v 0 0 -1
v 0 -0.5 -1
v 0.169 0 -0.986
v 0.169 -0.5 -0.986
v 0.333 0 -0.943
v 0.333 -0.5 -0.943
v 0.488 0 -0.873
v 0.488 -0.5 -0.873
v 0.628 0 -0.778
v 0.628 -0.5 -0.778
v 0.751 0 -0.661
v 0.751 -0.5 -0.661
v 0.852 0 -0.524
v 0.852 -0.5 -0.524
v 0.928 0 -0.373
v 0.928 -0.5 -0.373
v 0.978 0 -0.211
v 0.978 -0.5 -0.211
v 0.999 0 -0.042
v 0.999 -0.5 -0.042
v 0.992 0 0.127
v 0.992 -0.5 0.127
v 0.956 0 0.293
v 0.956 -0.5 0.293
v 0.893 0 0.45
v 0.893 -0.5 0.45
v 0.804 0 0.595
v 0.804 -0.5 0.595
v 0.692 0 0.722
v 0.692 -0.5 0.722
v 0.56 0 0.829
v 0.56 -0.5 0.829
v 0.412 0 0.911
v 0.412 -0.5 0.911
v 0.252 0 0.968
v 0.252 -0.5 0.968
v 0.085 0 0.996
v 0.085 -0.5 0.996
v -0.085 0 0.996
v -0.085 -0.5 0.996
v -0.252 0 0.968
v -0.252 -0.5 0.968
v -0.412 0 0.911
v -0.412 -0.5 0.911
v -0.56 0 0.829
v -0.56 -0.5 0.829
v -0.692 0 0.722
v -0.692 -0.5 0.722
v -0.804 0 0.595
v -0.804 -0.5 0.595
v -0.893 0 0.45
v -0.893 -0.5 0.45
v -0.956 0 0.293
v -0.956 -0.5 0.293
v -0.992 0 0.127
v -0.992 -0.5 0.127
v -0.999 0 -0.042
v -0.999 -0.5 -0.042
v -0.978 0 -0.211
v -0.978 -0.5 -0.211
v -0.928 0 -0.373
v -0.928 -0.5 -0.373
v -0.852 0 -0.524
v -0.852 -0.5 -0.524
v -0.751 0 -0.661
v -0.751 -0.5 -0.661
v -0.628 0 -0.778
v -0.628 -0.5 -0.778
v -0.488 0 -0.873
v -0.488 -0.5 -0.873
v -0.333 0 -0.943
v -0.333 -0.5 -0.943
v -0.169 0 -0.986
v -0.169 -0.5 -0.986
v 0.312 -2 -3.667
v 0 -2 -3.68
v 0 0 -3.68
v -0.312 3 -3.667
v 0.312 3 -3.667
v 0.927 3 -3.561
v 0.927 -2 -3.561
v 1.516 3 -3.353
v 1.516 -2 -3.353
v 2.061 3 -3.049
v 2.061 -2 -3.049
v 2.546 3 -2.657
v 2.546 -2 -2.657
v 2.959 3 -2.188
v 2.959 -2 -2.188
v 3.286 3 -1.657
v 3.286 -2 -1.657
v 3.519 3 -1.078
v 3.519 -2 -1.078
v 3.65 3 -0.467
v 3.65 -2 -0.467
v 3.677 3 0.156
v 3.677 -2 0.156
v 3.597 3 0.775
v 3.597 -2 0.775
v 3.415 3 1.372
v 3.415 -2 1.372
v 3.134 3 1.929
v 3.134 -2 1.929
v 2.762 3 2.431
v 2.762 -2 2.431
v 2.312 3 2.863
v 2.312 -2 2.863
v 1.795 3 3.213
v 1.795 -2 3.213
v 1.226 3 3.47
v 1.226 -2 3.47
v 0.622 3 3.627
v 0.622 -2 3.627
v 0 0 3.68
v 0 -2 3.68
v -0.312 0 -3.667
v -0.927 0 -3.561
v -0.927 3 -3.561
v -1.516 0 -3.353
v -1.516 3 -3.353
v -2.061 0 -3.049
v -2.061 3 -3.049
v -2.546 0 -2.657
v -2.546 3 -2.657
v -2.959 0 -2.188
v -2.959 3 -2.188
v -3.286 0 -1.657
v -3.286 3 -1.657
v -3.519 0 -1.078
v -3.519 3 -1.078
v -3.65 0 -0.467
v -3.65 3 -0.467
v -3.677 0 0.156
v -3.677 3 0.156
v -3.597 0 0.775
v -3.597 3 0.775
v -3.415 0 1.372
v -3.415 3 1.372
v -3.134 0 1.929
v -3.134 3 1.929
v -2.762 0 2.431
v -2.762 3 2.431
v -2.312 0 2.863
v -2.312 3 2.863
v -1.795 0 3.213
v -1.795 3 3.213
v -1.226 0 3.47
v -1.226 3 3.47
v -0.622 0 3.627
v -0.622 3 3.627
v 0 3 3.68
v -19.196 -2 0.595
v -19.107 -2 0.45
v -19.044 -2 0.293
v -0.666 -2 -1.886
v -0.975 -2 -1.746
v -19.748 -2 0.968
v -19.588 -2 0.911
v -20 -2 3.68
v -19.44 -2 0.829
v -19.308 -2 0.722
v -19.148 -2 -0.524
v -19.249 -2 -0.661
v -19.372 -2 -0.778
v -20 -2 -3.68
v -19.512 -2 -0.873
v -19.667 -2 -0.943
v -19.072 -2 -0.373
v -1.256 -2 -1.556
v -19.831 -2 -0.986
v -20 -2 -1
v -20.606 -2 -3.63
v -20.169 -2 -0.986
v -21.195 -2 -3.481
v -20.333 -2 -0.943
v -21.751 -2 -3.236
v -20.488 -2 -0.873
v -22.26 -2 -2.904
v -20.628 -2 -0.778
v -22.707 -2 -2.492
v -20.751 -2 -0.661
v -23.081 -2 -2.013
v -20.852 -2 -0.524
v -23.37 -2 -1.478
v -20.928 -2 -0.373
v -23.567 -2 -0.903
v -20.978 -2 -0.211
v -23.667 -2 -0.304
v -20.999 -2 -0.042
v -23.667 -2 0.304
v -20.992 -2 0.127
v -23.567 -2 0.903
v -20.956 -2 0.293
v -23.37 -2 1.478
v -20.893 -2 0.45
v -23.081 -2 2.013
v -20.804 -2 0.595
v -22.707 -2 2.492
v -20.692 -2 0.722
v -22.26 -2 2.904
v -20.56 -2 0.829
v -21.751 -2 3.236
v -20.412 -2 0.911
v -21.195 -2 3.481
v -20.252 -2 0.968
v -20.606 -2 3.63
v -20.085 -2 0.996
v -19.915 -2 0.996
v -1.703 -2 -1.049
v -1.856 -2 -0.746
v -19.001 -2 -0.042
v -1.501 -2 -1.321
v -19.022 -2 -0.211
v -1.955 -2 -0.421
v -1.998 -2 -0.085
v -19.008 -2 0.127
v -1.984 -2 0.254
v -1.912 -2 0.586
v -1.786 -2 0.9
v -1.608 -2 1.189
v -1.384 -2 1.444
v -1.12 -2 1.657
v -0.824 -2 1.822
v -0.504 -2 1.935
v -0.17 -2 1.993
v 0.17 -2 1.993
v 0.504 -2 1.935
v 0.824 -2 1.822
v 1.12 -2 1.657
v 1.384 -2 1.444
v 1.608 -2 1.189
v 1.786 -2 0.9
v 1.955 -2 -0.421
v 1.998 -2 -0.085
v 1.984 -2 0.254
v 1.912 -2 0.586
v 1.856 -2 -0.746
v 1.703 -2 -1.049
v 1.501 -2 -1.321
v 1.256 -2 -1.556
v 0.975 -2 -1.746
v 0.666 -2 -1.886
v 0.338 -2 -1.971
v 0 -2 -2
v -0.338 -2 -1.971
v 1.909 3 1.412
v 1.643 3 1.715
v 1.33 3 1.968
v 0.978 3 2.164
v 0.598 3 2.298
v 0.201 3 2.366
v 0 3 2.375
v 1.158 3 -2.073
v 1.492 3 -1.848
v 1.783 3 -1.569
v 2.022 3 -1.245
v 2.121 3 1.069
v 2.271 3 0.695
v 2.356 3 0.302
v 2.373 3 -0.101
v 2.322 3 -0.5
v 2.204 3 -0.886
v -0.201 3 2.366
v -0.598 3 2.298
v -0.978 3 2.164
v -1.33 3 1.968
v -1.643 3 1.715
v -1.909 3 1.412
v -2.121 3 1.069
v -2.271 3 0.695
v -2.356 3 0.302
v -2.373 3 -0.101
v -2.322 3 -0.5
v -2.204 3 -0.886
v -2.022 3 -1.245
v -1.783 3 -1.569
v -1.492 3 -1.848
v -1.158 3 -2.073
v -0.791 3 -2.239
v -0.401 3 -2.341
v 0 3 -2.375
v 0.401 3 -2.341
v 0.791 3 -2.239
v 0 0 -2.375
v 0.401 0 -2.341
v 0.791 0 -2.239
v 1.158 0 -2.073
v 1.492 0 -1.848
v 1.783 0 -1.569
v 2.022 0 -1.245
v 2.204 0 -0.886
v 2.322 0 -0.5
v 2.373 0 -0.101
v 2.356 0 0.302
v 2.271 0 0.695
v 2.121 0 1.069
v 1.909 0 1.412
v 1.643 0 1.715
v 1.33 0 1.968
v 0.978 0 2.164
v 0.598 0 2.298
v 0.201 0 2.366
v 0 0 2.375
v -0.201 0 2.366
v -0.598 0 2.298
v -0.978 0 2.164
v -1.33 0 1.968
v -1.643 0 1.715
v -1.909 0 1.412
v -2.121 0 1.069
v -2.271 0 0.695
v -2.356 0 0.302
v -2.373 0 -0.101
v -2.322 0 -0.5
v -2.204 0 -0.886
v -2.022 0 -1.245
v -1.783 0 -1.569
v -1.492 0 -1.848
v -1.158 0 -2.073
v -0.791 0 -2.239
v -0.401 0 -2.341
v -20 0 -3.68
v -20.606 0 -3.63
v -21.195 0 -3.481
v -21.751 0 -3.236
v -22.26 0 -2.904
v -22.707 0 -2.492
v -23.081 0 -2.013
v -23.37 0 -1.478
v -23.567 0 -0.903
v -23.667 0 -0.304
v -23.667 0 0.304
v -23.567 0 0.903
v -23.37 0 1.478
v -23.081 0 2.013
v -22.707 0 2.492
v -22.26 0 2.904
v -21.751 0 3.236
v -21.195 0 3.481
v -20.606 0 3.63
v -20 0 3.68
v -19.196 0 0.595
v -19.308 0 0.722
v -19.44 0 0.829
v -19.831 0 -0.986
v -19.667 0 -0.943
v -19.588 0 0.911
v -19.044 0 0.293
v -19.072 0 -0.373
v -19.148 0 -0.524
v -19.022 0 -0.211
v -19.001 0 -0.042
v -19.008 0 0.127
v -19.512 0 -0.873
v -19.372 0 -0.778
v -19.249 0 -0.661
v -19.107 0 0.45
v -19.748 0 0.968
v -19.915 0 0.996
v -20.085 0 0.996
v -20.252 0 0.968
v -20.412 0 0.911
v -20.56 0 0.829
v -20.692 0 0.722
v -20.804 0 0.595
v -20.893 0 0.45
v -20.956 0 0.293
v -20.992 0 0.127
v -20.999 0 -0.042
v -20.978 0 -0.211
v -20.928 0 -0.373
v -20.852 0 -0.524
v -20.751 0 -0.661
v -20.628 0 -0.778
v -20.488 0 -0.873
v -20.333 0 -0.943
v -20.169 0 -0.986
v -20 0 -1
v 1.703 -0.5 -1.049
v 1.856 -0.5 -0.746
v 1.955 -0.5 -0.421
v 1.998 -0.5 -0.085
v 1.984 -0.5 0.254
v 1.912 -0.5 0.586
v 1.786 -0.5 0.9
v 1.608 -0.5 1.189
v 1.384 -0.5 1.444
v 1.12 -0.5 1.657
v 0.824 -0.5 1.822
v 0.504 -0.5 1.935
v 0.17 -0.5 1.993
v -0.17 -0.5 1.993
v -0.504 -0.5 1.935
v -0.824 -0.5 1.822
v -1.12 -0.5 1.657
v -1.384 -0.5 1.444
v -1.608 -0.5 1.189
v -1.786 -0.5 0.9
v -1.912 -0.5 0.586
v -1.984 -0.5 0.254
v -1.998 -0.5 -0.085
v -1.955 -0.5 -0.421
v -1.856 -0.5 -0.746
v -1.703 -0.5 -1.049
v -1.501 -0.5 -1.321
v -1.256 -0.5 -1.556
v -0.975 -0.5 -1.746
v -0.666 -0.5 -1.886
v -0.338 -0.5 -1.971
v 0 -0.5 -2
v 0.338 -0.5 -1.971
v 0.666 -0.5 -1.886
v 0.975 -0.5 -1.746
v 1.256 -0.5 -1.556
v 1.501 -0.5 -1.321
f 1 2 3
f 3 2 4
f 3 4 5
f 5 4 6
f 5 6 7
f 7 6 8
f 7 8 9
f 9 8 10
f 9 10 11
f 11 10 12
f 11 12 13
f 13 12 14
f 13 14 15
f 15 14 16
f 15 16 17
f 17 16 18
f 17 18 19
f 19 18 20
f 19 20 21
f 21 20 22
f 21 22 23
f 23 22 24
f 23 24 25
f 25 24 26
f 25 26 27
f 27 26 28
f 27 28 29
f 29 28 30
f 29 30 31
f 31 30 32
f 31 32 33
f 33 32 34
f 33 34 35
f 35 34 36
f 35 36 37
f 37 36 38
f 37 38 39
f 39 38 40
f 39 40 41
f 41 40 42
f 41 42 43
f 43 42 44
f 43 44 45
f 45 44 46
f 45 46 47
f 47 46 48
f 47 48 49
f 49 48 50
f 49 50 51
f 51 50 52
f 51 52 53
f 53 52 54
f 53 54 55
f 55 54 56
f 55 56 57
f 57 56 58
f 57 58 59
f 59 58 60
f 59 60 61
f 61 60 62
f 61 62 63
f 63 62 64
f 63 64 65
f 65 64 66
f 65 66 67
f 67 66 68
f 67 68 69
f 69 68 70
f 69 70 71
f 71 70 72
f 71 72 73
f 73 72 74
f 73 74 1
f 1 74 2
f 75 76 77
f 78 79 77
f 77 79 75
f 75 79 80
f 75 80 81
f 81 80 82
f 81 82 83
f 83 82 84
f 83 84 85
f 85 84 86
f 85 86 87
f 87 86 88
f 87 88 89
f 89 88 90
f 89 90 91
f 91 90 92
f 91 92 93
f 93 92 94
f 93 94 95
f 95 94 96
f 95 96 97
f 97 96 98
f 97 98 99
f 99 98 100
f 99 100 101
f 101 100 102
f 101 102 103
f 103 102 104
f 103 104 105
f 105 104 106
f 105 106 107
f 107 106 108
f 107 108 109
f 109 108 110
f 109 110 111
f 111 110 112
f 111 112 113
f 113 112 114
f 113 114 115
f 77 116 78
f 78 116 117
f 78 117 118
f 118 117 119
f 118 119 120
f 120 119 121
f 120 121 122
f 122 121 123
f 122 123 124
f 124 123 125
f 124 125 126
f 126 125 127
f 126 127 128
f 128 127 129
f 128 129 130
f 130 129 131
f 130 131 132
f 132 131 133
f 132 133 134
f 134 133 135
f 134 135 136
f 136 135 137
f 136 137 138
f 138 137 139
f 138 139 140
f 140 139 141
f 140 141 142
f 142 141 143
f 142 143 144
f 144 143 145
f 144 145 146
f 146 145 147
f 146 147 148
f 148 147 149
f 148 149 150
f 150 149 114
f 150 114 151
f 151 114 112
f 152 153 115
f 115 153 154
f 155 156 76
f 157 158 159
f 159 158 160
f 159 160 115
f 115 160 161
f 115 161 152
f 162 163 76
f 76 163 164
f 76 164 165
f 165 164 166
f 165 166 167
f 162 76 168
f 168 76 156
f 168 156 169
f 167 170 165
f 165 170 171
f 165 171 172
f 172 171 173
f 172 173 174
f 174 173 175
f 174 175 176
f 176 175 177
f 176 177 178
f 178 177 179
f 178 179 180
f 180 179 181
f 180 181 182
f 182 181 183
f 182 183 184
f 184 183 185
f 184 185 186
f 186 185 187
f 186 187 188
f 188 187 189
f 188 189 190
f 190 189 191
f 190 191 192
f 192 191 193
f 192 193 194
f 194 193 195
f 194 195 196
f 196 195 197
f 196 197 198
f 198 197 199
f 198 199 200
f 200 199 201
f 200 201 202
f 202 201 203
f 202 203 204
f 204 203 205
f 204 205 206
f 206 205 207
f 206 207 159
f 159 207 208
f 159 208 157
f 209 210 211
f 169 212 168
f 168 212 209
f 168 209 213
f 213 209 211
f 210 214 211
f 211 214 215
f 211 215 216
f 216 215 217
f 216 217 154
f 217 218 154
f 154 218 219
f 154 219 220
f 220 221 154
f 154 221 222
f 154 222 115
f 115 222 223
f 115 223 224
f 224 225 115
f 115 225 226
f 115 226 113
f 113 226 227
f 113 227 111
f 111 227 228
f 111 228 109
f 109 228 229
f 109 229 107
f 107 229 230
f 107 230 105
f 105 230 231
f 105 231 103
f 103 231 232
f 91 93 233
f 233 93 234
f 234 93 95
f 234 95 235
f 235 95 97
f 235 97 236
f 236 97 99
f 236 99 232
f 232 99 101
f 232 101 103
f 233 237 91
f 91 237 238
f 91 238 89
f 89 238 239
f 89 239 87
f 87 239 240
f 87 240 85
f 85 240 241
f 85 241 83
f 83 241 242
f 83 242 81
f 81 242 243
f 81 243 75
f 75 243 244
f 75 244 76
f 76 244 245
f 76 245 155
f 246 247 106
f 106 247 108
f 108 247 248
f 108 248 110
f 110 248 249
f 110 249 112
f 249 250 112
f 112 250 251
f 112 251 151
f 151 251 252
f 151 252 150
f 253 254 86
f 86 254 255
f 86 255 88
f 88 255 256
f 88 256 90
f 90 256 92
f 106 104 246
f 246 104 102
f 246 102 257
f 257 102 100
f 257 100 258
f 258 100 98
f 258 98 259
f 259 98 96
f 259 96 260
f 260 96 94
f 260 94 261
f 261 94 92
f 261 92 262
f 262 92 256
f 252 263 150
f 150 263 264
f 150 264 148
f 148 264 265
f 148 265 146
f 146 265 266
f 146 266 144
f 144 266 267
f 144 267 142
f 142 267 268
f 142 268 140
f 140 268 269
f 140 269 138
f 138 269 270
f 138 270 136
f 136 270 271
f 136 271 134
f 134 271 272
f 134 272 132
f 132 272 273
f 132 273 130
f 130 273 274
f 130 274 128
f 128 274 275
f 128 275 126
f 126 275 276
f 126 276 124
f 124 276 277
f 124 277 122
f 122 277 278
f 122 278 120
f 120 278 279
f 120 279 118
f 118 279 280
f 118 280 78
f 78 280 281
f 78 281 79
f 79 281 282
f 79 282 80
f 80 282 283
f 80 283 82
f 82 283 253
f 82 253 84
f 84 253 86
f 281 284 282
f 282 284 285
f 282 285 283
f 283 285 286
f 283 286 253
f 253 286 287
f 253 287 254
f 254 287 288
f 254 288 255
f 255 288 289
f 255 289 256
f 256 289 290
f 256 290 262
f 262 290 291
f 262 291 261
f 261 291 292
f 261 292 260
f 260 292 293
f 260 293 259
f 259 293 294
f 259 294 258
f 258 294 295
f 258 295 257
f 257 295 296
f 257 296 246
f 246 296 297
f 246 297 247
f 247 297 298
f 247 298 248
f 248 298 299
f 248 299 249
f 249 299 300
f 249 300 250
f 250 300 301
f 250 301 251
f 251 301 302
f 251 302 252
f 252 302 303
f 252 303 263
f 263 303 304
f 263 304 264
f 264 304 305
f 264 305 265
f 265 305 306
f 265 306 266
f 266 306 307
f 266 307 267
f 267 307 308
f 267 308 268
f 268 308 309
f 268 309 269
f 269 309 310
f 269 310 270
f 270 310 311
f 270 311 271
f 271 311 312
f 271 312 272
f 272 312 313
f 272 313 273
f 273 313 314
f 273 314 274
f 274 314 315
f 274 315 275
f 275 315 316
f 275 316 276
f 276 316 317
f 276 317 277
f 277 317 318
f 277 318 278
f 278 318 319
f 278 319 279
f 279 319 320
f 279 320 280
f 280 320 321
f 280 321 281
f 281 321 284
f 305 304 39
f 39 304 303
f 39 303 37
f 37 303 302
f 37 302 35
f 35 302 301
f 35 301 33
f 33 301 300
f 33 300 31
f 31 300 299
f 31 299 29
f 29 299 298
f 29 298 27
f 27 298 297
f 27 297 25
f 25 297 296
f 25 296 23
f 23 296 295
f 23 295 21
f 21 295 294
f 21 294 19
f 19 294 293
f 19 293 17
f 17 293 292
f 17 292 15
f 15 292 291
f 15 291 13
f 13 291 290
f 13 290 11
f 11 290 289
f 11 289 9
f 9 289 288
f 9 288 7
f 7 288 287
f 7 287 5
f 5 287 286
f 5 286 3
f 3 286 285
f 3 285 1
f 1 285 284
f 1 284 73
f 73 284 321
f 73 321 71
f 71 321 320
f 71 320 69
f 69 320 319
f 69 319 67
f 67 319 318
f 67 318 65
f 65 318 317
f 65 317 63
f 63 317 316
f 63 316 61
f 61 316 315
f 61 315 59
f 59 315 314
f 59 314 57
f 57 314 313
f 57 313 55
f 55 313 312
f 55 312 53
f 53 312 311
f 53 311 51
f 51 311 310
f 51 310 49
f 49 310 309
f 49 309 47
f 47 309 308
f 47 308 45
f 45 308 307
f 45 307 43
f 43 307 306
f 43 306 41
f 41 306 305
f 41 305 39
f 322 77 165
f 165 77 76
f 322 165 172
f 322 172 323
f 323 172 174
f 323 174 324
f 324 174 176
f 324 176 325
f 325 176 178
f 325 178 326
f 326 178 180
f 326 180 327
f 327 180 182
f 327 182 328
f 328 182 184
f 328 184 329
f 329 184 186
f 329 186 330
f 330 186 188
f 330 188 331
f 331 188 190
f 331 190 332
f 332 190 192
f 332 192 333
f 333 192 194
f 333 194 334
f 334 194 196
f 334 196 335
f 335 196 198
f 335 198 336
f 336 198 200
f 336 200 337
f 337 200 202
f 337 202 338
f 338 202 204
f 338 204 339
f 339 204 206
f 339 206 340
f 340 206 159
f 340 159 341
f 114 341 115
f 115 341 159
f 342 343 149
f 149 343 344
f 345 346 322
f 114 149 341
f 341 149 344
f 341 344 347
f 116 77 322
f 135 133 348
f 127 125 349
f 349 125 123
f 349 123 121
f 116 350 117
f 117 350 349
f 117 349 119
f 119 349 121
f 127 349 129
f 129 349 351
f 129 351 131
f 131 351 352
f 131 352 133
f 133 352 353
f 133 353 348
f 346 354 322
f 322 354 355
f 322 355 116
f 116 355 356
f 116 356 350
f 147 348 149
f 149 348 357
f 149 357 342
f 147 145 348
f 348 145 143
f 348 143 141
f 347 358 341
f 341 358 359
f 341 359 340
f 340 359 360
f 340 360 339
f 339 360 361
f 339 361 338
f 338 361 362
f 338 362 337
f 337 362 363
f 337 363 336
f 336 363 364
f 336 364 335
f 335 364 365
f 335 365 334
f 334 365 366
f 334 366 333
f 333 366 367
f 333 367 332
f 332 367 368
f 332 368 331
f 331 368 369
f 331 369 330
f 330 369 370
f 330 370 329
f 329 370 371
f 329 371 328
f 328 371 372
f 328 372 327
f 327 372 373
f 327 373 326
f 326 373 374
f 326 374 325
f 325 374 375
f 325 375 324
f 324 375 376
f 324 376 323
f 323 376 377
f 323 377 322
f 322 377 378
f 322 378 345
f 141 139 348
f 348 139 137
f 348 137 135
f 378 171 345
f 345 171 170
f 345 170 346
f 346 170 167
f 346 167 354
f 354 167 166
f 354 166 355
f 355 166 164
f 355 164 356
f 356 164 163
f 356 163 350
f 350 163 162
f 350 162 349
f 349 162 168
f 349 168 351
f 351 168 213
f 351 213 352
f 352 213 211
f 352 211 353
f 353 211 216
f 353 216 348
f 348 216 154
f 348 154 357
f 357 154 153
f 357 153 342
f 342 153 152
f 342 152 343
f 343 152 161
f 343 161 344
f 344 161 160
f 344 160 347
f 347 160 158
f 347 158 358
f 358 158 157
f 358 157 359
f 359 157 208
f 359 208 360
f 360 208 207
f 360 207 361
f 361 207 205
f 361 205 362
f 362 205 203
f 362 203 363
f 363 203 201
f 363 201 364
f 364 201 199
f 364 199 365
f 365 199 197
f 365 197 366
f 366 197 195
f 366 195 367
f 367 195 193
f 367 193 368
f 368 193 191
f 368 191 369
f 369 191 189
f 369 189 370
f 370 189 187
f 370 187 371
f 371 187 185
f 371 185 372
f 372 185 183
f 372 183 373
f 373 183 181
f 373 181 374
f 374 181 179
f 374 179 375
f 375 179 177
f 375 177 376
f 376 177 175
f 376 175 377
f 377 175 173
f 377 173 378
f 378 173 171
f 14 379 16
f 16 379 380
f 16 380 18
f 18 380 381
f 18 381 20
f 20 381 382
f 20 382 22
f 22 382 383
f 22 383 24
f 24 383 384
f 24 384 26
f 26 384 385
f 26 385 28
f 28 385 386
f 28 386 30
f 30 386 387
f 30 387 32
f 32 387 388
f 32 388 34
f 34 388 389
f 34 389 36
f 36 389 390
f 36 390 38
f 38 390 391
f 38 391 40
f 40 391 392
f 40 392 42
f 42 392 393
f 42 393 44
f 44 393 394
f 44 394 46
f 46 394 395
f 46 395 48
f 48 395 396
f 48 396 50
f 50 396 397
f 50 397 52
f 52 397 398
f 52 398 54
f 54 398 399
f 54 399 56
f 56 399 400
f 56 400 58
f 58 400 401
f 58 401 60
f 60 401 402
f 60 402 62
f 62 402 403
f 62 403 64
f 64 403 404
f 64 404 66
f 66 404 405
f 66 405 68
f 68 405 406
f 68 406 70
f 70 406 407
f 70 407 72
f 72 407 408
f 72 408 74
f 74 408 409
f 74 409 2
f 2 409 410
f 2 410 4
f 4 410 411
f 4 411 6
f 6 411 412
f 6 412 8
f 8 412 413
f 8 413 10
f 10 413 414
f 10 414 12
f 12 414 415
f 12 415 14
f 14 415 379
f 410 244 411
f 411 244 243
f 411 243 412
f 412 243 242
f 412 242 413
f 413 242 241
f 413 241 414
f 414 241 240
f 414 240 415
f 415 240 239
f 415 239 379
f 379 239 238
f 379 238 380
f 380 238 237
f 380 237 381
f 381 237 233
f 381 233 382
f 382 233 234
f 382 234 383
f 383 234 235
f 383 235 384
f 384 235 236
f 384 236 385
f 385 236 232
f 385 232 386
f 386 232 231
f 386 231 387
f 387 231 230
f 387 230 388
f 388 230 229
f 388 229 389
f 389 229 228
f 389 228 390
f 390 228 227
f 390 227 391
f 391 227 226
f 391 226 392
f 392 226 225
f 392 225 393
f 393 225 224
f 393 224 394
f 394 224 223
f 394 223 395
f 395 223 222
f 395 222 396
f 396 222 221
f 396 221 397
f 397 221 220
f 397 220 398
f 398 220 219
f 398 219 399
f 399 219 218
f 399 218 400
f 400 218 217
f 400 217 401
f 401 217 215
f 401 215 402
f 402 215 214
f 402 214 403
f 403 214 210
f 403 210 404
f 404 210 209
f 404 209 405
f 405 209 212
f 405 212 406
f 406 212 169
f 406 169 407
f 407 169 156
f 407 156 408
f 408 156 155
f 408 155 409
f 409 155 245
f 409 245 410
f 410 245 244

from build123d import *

# Parameters (mm, degrees)
SKETCH1_R           = 3.68
BOSS_EXTRUDE1_DEPTH = 2
BOSS_EXTRUDE2_START = 3
SKETCH2_R           = 3.68
SKETCH2_R_2         = 2.375
BOSS_EXTRUDE2_DEPTH = 3
BOSS_EXTRUDE3_START = -2
BOSS_EXTRUDE3_DEPTH = 2
SKETCH7_R           = 1
CUT_EXTRUDE4_DEPTH  = 2
SKETCH8_R           = 2
CUT_EXTRUDE6_DEPTH  = 1.5


with BuildPart() as part:
    # Sketch1 → Boss-Extrude1 (new body)
    with BuildSketch(Plane(origin=(0, 0, 0), x_dir=(1, 0, 0), z_dir=(0, 1, 0))):
        with Locations(Location((0, 0, 0), (0, 0, 270))):
            Circle(SKETCH1_R)
    extrude(amount=-BOSS_EXTRUDE1_DEPTH)

    # Sketch2 → Boss-Extrude2 (add)
    with BuildSketch(Plane(origin=(0, 0, 0), x_dir=(1, 0, 0), z_dir=(0, 1, 0)).offset(BOSS_EXTRUDE2_START)):
        with Locations(Location((0, 0, 0), (0, 0, 270))):
            Circle(SKETCH2_R)
        with Locations(Location((0, 0, 0), (0, 0, 270))):
            Circle(SKETCH2_R_2, mode=Mode.SUBTRACT)
    extrude(amount=-BOSS_EXTRUDE2_DEPTH)

    # Sketch6 → Boss-Extrude3 (add)
    with BuildSketch(Plane.XZ.offset(2).offset(BOSS_EXTRUDE3_START)):
        with BuildLine():
            Line((0, -3.68), (-20, -3.68))
            ThreePointArc((-20, -3.68), (-23.68, 0), (-20, 3.68))
            Line((-20, 3.68), (0, 3.68))
            ThreePointArc((0, 3.68), (3.68, 0), (0, -3.68))
        make_face()
    extrude(amount=BOSS_EXTRUDE3_DEPTH)

    # Sketch7 → Cut-Extrude4 (cut)
    with BuildSketch(Plane.XZ.offset(2)):
        with Locations(Location((0, 0, 0), (0, 0, 270))):
            Circle(SKETCH7_R)
        with Locations(Location((-20, 0, 0), (0, 0, 270))):
            Circle(SKETCH7_R)
    extrude(amount=-CUT_EXTRUDE4_DEPTH, mode=Mode.SUBTRACT)

    # Sketch8 → Cut-Extrude6 (cut)
    with BuildSketch(Plane.XZ.offset(2)):
        with Locations(Location((0, 0, 0), (0, 0, 270))):
            Circle(SKETCH8_R)
    extrude(amount=-CUT_EXTRUDE6_DEPTH, mode=Mode.SUBTRACT)


solid = part.part
